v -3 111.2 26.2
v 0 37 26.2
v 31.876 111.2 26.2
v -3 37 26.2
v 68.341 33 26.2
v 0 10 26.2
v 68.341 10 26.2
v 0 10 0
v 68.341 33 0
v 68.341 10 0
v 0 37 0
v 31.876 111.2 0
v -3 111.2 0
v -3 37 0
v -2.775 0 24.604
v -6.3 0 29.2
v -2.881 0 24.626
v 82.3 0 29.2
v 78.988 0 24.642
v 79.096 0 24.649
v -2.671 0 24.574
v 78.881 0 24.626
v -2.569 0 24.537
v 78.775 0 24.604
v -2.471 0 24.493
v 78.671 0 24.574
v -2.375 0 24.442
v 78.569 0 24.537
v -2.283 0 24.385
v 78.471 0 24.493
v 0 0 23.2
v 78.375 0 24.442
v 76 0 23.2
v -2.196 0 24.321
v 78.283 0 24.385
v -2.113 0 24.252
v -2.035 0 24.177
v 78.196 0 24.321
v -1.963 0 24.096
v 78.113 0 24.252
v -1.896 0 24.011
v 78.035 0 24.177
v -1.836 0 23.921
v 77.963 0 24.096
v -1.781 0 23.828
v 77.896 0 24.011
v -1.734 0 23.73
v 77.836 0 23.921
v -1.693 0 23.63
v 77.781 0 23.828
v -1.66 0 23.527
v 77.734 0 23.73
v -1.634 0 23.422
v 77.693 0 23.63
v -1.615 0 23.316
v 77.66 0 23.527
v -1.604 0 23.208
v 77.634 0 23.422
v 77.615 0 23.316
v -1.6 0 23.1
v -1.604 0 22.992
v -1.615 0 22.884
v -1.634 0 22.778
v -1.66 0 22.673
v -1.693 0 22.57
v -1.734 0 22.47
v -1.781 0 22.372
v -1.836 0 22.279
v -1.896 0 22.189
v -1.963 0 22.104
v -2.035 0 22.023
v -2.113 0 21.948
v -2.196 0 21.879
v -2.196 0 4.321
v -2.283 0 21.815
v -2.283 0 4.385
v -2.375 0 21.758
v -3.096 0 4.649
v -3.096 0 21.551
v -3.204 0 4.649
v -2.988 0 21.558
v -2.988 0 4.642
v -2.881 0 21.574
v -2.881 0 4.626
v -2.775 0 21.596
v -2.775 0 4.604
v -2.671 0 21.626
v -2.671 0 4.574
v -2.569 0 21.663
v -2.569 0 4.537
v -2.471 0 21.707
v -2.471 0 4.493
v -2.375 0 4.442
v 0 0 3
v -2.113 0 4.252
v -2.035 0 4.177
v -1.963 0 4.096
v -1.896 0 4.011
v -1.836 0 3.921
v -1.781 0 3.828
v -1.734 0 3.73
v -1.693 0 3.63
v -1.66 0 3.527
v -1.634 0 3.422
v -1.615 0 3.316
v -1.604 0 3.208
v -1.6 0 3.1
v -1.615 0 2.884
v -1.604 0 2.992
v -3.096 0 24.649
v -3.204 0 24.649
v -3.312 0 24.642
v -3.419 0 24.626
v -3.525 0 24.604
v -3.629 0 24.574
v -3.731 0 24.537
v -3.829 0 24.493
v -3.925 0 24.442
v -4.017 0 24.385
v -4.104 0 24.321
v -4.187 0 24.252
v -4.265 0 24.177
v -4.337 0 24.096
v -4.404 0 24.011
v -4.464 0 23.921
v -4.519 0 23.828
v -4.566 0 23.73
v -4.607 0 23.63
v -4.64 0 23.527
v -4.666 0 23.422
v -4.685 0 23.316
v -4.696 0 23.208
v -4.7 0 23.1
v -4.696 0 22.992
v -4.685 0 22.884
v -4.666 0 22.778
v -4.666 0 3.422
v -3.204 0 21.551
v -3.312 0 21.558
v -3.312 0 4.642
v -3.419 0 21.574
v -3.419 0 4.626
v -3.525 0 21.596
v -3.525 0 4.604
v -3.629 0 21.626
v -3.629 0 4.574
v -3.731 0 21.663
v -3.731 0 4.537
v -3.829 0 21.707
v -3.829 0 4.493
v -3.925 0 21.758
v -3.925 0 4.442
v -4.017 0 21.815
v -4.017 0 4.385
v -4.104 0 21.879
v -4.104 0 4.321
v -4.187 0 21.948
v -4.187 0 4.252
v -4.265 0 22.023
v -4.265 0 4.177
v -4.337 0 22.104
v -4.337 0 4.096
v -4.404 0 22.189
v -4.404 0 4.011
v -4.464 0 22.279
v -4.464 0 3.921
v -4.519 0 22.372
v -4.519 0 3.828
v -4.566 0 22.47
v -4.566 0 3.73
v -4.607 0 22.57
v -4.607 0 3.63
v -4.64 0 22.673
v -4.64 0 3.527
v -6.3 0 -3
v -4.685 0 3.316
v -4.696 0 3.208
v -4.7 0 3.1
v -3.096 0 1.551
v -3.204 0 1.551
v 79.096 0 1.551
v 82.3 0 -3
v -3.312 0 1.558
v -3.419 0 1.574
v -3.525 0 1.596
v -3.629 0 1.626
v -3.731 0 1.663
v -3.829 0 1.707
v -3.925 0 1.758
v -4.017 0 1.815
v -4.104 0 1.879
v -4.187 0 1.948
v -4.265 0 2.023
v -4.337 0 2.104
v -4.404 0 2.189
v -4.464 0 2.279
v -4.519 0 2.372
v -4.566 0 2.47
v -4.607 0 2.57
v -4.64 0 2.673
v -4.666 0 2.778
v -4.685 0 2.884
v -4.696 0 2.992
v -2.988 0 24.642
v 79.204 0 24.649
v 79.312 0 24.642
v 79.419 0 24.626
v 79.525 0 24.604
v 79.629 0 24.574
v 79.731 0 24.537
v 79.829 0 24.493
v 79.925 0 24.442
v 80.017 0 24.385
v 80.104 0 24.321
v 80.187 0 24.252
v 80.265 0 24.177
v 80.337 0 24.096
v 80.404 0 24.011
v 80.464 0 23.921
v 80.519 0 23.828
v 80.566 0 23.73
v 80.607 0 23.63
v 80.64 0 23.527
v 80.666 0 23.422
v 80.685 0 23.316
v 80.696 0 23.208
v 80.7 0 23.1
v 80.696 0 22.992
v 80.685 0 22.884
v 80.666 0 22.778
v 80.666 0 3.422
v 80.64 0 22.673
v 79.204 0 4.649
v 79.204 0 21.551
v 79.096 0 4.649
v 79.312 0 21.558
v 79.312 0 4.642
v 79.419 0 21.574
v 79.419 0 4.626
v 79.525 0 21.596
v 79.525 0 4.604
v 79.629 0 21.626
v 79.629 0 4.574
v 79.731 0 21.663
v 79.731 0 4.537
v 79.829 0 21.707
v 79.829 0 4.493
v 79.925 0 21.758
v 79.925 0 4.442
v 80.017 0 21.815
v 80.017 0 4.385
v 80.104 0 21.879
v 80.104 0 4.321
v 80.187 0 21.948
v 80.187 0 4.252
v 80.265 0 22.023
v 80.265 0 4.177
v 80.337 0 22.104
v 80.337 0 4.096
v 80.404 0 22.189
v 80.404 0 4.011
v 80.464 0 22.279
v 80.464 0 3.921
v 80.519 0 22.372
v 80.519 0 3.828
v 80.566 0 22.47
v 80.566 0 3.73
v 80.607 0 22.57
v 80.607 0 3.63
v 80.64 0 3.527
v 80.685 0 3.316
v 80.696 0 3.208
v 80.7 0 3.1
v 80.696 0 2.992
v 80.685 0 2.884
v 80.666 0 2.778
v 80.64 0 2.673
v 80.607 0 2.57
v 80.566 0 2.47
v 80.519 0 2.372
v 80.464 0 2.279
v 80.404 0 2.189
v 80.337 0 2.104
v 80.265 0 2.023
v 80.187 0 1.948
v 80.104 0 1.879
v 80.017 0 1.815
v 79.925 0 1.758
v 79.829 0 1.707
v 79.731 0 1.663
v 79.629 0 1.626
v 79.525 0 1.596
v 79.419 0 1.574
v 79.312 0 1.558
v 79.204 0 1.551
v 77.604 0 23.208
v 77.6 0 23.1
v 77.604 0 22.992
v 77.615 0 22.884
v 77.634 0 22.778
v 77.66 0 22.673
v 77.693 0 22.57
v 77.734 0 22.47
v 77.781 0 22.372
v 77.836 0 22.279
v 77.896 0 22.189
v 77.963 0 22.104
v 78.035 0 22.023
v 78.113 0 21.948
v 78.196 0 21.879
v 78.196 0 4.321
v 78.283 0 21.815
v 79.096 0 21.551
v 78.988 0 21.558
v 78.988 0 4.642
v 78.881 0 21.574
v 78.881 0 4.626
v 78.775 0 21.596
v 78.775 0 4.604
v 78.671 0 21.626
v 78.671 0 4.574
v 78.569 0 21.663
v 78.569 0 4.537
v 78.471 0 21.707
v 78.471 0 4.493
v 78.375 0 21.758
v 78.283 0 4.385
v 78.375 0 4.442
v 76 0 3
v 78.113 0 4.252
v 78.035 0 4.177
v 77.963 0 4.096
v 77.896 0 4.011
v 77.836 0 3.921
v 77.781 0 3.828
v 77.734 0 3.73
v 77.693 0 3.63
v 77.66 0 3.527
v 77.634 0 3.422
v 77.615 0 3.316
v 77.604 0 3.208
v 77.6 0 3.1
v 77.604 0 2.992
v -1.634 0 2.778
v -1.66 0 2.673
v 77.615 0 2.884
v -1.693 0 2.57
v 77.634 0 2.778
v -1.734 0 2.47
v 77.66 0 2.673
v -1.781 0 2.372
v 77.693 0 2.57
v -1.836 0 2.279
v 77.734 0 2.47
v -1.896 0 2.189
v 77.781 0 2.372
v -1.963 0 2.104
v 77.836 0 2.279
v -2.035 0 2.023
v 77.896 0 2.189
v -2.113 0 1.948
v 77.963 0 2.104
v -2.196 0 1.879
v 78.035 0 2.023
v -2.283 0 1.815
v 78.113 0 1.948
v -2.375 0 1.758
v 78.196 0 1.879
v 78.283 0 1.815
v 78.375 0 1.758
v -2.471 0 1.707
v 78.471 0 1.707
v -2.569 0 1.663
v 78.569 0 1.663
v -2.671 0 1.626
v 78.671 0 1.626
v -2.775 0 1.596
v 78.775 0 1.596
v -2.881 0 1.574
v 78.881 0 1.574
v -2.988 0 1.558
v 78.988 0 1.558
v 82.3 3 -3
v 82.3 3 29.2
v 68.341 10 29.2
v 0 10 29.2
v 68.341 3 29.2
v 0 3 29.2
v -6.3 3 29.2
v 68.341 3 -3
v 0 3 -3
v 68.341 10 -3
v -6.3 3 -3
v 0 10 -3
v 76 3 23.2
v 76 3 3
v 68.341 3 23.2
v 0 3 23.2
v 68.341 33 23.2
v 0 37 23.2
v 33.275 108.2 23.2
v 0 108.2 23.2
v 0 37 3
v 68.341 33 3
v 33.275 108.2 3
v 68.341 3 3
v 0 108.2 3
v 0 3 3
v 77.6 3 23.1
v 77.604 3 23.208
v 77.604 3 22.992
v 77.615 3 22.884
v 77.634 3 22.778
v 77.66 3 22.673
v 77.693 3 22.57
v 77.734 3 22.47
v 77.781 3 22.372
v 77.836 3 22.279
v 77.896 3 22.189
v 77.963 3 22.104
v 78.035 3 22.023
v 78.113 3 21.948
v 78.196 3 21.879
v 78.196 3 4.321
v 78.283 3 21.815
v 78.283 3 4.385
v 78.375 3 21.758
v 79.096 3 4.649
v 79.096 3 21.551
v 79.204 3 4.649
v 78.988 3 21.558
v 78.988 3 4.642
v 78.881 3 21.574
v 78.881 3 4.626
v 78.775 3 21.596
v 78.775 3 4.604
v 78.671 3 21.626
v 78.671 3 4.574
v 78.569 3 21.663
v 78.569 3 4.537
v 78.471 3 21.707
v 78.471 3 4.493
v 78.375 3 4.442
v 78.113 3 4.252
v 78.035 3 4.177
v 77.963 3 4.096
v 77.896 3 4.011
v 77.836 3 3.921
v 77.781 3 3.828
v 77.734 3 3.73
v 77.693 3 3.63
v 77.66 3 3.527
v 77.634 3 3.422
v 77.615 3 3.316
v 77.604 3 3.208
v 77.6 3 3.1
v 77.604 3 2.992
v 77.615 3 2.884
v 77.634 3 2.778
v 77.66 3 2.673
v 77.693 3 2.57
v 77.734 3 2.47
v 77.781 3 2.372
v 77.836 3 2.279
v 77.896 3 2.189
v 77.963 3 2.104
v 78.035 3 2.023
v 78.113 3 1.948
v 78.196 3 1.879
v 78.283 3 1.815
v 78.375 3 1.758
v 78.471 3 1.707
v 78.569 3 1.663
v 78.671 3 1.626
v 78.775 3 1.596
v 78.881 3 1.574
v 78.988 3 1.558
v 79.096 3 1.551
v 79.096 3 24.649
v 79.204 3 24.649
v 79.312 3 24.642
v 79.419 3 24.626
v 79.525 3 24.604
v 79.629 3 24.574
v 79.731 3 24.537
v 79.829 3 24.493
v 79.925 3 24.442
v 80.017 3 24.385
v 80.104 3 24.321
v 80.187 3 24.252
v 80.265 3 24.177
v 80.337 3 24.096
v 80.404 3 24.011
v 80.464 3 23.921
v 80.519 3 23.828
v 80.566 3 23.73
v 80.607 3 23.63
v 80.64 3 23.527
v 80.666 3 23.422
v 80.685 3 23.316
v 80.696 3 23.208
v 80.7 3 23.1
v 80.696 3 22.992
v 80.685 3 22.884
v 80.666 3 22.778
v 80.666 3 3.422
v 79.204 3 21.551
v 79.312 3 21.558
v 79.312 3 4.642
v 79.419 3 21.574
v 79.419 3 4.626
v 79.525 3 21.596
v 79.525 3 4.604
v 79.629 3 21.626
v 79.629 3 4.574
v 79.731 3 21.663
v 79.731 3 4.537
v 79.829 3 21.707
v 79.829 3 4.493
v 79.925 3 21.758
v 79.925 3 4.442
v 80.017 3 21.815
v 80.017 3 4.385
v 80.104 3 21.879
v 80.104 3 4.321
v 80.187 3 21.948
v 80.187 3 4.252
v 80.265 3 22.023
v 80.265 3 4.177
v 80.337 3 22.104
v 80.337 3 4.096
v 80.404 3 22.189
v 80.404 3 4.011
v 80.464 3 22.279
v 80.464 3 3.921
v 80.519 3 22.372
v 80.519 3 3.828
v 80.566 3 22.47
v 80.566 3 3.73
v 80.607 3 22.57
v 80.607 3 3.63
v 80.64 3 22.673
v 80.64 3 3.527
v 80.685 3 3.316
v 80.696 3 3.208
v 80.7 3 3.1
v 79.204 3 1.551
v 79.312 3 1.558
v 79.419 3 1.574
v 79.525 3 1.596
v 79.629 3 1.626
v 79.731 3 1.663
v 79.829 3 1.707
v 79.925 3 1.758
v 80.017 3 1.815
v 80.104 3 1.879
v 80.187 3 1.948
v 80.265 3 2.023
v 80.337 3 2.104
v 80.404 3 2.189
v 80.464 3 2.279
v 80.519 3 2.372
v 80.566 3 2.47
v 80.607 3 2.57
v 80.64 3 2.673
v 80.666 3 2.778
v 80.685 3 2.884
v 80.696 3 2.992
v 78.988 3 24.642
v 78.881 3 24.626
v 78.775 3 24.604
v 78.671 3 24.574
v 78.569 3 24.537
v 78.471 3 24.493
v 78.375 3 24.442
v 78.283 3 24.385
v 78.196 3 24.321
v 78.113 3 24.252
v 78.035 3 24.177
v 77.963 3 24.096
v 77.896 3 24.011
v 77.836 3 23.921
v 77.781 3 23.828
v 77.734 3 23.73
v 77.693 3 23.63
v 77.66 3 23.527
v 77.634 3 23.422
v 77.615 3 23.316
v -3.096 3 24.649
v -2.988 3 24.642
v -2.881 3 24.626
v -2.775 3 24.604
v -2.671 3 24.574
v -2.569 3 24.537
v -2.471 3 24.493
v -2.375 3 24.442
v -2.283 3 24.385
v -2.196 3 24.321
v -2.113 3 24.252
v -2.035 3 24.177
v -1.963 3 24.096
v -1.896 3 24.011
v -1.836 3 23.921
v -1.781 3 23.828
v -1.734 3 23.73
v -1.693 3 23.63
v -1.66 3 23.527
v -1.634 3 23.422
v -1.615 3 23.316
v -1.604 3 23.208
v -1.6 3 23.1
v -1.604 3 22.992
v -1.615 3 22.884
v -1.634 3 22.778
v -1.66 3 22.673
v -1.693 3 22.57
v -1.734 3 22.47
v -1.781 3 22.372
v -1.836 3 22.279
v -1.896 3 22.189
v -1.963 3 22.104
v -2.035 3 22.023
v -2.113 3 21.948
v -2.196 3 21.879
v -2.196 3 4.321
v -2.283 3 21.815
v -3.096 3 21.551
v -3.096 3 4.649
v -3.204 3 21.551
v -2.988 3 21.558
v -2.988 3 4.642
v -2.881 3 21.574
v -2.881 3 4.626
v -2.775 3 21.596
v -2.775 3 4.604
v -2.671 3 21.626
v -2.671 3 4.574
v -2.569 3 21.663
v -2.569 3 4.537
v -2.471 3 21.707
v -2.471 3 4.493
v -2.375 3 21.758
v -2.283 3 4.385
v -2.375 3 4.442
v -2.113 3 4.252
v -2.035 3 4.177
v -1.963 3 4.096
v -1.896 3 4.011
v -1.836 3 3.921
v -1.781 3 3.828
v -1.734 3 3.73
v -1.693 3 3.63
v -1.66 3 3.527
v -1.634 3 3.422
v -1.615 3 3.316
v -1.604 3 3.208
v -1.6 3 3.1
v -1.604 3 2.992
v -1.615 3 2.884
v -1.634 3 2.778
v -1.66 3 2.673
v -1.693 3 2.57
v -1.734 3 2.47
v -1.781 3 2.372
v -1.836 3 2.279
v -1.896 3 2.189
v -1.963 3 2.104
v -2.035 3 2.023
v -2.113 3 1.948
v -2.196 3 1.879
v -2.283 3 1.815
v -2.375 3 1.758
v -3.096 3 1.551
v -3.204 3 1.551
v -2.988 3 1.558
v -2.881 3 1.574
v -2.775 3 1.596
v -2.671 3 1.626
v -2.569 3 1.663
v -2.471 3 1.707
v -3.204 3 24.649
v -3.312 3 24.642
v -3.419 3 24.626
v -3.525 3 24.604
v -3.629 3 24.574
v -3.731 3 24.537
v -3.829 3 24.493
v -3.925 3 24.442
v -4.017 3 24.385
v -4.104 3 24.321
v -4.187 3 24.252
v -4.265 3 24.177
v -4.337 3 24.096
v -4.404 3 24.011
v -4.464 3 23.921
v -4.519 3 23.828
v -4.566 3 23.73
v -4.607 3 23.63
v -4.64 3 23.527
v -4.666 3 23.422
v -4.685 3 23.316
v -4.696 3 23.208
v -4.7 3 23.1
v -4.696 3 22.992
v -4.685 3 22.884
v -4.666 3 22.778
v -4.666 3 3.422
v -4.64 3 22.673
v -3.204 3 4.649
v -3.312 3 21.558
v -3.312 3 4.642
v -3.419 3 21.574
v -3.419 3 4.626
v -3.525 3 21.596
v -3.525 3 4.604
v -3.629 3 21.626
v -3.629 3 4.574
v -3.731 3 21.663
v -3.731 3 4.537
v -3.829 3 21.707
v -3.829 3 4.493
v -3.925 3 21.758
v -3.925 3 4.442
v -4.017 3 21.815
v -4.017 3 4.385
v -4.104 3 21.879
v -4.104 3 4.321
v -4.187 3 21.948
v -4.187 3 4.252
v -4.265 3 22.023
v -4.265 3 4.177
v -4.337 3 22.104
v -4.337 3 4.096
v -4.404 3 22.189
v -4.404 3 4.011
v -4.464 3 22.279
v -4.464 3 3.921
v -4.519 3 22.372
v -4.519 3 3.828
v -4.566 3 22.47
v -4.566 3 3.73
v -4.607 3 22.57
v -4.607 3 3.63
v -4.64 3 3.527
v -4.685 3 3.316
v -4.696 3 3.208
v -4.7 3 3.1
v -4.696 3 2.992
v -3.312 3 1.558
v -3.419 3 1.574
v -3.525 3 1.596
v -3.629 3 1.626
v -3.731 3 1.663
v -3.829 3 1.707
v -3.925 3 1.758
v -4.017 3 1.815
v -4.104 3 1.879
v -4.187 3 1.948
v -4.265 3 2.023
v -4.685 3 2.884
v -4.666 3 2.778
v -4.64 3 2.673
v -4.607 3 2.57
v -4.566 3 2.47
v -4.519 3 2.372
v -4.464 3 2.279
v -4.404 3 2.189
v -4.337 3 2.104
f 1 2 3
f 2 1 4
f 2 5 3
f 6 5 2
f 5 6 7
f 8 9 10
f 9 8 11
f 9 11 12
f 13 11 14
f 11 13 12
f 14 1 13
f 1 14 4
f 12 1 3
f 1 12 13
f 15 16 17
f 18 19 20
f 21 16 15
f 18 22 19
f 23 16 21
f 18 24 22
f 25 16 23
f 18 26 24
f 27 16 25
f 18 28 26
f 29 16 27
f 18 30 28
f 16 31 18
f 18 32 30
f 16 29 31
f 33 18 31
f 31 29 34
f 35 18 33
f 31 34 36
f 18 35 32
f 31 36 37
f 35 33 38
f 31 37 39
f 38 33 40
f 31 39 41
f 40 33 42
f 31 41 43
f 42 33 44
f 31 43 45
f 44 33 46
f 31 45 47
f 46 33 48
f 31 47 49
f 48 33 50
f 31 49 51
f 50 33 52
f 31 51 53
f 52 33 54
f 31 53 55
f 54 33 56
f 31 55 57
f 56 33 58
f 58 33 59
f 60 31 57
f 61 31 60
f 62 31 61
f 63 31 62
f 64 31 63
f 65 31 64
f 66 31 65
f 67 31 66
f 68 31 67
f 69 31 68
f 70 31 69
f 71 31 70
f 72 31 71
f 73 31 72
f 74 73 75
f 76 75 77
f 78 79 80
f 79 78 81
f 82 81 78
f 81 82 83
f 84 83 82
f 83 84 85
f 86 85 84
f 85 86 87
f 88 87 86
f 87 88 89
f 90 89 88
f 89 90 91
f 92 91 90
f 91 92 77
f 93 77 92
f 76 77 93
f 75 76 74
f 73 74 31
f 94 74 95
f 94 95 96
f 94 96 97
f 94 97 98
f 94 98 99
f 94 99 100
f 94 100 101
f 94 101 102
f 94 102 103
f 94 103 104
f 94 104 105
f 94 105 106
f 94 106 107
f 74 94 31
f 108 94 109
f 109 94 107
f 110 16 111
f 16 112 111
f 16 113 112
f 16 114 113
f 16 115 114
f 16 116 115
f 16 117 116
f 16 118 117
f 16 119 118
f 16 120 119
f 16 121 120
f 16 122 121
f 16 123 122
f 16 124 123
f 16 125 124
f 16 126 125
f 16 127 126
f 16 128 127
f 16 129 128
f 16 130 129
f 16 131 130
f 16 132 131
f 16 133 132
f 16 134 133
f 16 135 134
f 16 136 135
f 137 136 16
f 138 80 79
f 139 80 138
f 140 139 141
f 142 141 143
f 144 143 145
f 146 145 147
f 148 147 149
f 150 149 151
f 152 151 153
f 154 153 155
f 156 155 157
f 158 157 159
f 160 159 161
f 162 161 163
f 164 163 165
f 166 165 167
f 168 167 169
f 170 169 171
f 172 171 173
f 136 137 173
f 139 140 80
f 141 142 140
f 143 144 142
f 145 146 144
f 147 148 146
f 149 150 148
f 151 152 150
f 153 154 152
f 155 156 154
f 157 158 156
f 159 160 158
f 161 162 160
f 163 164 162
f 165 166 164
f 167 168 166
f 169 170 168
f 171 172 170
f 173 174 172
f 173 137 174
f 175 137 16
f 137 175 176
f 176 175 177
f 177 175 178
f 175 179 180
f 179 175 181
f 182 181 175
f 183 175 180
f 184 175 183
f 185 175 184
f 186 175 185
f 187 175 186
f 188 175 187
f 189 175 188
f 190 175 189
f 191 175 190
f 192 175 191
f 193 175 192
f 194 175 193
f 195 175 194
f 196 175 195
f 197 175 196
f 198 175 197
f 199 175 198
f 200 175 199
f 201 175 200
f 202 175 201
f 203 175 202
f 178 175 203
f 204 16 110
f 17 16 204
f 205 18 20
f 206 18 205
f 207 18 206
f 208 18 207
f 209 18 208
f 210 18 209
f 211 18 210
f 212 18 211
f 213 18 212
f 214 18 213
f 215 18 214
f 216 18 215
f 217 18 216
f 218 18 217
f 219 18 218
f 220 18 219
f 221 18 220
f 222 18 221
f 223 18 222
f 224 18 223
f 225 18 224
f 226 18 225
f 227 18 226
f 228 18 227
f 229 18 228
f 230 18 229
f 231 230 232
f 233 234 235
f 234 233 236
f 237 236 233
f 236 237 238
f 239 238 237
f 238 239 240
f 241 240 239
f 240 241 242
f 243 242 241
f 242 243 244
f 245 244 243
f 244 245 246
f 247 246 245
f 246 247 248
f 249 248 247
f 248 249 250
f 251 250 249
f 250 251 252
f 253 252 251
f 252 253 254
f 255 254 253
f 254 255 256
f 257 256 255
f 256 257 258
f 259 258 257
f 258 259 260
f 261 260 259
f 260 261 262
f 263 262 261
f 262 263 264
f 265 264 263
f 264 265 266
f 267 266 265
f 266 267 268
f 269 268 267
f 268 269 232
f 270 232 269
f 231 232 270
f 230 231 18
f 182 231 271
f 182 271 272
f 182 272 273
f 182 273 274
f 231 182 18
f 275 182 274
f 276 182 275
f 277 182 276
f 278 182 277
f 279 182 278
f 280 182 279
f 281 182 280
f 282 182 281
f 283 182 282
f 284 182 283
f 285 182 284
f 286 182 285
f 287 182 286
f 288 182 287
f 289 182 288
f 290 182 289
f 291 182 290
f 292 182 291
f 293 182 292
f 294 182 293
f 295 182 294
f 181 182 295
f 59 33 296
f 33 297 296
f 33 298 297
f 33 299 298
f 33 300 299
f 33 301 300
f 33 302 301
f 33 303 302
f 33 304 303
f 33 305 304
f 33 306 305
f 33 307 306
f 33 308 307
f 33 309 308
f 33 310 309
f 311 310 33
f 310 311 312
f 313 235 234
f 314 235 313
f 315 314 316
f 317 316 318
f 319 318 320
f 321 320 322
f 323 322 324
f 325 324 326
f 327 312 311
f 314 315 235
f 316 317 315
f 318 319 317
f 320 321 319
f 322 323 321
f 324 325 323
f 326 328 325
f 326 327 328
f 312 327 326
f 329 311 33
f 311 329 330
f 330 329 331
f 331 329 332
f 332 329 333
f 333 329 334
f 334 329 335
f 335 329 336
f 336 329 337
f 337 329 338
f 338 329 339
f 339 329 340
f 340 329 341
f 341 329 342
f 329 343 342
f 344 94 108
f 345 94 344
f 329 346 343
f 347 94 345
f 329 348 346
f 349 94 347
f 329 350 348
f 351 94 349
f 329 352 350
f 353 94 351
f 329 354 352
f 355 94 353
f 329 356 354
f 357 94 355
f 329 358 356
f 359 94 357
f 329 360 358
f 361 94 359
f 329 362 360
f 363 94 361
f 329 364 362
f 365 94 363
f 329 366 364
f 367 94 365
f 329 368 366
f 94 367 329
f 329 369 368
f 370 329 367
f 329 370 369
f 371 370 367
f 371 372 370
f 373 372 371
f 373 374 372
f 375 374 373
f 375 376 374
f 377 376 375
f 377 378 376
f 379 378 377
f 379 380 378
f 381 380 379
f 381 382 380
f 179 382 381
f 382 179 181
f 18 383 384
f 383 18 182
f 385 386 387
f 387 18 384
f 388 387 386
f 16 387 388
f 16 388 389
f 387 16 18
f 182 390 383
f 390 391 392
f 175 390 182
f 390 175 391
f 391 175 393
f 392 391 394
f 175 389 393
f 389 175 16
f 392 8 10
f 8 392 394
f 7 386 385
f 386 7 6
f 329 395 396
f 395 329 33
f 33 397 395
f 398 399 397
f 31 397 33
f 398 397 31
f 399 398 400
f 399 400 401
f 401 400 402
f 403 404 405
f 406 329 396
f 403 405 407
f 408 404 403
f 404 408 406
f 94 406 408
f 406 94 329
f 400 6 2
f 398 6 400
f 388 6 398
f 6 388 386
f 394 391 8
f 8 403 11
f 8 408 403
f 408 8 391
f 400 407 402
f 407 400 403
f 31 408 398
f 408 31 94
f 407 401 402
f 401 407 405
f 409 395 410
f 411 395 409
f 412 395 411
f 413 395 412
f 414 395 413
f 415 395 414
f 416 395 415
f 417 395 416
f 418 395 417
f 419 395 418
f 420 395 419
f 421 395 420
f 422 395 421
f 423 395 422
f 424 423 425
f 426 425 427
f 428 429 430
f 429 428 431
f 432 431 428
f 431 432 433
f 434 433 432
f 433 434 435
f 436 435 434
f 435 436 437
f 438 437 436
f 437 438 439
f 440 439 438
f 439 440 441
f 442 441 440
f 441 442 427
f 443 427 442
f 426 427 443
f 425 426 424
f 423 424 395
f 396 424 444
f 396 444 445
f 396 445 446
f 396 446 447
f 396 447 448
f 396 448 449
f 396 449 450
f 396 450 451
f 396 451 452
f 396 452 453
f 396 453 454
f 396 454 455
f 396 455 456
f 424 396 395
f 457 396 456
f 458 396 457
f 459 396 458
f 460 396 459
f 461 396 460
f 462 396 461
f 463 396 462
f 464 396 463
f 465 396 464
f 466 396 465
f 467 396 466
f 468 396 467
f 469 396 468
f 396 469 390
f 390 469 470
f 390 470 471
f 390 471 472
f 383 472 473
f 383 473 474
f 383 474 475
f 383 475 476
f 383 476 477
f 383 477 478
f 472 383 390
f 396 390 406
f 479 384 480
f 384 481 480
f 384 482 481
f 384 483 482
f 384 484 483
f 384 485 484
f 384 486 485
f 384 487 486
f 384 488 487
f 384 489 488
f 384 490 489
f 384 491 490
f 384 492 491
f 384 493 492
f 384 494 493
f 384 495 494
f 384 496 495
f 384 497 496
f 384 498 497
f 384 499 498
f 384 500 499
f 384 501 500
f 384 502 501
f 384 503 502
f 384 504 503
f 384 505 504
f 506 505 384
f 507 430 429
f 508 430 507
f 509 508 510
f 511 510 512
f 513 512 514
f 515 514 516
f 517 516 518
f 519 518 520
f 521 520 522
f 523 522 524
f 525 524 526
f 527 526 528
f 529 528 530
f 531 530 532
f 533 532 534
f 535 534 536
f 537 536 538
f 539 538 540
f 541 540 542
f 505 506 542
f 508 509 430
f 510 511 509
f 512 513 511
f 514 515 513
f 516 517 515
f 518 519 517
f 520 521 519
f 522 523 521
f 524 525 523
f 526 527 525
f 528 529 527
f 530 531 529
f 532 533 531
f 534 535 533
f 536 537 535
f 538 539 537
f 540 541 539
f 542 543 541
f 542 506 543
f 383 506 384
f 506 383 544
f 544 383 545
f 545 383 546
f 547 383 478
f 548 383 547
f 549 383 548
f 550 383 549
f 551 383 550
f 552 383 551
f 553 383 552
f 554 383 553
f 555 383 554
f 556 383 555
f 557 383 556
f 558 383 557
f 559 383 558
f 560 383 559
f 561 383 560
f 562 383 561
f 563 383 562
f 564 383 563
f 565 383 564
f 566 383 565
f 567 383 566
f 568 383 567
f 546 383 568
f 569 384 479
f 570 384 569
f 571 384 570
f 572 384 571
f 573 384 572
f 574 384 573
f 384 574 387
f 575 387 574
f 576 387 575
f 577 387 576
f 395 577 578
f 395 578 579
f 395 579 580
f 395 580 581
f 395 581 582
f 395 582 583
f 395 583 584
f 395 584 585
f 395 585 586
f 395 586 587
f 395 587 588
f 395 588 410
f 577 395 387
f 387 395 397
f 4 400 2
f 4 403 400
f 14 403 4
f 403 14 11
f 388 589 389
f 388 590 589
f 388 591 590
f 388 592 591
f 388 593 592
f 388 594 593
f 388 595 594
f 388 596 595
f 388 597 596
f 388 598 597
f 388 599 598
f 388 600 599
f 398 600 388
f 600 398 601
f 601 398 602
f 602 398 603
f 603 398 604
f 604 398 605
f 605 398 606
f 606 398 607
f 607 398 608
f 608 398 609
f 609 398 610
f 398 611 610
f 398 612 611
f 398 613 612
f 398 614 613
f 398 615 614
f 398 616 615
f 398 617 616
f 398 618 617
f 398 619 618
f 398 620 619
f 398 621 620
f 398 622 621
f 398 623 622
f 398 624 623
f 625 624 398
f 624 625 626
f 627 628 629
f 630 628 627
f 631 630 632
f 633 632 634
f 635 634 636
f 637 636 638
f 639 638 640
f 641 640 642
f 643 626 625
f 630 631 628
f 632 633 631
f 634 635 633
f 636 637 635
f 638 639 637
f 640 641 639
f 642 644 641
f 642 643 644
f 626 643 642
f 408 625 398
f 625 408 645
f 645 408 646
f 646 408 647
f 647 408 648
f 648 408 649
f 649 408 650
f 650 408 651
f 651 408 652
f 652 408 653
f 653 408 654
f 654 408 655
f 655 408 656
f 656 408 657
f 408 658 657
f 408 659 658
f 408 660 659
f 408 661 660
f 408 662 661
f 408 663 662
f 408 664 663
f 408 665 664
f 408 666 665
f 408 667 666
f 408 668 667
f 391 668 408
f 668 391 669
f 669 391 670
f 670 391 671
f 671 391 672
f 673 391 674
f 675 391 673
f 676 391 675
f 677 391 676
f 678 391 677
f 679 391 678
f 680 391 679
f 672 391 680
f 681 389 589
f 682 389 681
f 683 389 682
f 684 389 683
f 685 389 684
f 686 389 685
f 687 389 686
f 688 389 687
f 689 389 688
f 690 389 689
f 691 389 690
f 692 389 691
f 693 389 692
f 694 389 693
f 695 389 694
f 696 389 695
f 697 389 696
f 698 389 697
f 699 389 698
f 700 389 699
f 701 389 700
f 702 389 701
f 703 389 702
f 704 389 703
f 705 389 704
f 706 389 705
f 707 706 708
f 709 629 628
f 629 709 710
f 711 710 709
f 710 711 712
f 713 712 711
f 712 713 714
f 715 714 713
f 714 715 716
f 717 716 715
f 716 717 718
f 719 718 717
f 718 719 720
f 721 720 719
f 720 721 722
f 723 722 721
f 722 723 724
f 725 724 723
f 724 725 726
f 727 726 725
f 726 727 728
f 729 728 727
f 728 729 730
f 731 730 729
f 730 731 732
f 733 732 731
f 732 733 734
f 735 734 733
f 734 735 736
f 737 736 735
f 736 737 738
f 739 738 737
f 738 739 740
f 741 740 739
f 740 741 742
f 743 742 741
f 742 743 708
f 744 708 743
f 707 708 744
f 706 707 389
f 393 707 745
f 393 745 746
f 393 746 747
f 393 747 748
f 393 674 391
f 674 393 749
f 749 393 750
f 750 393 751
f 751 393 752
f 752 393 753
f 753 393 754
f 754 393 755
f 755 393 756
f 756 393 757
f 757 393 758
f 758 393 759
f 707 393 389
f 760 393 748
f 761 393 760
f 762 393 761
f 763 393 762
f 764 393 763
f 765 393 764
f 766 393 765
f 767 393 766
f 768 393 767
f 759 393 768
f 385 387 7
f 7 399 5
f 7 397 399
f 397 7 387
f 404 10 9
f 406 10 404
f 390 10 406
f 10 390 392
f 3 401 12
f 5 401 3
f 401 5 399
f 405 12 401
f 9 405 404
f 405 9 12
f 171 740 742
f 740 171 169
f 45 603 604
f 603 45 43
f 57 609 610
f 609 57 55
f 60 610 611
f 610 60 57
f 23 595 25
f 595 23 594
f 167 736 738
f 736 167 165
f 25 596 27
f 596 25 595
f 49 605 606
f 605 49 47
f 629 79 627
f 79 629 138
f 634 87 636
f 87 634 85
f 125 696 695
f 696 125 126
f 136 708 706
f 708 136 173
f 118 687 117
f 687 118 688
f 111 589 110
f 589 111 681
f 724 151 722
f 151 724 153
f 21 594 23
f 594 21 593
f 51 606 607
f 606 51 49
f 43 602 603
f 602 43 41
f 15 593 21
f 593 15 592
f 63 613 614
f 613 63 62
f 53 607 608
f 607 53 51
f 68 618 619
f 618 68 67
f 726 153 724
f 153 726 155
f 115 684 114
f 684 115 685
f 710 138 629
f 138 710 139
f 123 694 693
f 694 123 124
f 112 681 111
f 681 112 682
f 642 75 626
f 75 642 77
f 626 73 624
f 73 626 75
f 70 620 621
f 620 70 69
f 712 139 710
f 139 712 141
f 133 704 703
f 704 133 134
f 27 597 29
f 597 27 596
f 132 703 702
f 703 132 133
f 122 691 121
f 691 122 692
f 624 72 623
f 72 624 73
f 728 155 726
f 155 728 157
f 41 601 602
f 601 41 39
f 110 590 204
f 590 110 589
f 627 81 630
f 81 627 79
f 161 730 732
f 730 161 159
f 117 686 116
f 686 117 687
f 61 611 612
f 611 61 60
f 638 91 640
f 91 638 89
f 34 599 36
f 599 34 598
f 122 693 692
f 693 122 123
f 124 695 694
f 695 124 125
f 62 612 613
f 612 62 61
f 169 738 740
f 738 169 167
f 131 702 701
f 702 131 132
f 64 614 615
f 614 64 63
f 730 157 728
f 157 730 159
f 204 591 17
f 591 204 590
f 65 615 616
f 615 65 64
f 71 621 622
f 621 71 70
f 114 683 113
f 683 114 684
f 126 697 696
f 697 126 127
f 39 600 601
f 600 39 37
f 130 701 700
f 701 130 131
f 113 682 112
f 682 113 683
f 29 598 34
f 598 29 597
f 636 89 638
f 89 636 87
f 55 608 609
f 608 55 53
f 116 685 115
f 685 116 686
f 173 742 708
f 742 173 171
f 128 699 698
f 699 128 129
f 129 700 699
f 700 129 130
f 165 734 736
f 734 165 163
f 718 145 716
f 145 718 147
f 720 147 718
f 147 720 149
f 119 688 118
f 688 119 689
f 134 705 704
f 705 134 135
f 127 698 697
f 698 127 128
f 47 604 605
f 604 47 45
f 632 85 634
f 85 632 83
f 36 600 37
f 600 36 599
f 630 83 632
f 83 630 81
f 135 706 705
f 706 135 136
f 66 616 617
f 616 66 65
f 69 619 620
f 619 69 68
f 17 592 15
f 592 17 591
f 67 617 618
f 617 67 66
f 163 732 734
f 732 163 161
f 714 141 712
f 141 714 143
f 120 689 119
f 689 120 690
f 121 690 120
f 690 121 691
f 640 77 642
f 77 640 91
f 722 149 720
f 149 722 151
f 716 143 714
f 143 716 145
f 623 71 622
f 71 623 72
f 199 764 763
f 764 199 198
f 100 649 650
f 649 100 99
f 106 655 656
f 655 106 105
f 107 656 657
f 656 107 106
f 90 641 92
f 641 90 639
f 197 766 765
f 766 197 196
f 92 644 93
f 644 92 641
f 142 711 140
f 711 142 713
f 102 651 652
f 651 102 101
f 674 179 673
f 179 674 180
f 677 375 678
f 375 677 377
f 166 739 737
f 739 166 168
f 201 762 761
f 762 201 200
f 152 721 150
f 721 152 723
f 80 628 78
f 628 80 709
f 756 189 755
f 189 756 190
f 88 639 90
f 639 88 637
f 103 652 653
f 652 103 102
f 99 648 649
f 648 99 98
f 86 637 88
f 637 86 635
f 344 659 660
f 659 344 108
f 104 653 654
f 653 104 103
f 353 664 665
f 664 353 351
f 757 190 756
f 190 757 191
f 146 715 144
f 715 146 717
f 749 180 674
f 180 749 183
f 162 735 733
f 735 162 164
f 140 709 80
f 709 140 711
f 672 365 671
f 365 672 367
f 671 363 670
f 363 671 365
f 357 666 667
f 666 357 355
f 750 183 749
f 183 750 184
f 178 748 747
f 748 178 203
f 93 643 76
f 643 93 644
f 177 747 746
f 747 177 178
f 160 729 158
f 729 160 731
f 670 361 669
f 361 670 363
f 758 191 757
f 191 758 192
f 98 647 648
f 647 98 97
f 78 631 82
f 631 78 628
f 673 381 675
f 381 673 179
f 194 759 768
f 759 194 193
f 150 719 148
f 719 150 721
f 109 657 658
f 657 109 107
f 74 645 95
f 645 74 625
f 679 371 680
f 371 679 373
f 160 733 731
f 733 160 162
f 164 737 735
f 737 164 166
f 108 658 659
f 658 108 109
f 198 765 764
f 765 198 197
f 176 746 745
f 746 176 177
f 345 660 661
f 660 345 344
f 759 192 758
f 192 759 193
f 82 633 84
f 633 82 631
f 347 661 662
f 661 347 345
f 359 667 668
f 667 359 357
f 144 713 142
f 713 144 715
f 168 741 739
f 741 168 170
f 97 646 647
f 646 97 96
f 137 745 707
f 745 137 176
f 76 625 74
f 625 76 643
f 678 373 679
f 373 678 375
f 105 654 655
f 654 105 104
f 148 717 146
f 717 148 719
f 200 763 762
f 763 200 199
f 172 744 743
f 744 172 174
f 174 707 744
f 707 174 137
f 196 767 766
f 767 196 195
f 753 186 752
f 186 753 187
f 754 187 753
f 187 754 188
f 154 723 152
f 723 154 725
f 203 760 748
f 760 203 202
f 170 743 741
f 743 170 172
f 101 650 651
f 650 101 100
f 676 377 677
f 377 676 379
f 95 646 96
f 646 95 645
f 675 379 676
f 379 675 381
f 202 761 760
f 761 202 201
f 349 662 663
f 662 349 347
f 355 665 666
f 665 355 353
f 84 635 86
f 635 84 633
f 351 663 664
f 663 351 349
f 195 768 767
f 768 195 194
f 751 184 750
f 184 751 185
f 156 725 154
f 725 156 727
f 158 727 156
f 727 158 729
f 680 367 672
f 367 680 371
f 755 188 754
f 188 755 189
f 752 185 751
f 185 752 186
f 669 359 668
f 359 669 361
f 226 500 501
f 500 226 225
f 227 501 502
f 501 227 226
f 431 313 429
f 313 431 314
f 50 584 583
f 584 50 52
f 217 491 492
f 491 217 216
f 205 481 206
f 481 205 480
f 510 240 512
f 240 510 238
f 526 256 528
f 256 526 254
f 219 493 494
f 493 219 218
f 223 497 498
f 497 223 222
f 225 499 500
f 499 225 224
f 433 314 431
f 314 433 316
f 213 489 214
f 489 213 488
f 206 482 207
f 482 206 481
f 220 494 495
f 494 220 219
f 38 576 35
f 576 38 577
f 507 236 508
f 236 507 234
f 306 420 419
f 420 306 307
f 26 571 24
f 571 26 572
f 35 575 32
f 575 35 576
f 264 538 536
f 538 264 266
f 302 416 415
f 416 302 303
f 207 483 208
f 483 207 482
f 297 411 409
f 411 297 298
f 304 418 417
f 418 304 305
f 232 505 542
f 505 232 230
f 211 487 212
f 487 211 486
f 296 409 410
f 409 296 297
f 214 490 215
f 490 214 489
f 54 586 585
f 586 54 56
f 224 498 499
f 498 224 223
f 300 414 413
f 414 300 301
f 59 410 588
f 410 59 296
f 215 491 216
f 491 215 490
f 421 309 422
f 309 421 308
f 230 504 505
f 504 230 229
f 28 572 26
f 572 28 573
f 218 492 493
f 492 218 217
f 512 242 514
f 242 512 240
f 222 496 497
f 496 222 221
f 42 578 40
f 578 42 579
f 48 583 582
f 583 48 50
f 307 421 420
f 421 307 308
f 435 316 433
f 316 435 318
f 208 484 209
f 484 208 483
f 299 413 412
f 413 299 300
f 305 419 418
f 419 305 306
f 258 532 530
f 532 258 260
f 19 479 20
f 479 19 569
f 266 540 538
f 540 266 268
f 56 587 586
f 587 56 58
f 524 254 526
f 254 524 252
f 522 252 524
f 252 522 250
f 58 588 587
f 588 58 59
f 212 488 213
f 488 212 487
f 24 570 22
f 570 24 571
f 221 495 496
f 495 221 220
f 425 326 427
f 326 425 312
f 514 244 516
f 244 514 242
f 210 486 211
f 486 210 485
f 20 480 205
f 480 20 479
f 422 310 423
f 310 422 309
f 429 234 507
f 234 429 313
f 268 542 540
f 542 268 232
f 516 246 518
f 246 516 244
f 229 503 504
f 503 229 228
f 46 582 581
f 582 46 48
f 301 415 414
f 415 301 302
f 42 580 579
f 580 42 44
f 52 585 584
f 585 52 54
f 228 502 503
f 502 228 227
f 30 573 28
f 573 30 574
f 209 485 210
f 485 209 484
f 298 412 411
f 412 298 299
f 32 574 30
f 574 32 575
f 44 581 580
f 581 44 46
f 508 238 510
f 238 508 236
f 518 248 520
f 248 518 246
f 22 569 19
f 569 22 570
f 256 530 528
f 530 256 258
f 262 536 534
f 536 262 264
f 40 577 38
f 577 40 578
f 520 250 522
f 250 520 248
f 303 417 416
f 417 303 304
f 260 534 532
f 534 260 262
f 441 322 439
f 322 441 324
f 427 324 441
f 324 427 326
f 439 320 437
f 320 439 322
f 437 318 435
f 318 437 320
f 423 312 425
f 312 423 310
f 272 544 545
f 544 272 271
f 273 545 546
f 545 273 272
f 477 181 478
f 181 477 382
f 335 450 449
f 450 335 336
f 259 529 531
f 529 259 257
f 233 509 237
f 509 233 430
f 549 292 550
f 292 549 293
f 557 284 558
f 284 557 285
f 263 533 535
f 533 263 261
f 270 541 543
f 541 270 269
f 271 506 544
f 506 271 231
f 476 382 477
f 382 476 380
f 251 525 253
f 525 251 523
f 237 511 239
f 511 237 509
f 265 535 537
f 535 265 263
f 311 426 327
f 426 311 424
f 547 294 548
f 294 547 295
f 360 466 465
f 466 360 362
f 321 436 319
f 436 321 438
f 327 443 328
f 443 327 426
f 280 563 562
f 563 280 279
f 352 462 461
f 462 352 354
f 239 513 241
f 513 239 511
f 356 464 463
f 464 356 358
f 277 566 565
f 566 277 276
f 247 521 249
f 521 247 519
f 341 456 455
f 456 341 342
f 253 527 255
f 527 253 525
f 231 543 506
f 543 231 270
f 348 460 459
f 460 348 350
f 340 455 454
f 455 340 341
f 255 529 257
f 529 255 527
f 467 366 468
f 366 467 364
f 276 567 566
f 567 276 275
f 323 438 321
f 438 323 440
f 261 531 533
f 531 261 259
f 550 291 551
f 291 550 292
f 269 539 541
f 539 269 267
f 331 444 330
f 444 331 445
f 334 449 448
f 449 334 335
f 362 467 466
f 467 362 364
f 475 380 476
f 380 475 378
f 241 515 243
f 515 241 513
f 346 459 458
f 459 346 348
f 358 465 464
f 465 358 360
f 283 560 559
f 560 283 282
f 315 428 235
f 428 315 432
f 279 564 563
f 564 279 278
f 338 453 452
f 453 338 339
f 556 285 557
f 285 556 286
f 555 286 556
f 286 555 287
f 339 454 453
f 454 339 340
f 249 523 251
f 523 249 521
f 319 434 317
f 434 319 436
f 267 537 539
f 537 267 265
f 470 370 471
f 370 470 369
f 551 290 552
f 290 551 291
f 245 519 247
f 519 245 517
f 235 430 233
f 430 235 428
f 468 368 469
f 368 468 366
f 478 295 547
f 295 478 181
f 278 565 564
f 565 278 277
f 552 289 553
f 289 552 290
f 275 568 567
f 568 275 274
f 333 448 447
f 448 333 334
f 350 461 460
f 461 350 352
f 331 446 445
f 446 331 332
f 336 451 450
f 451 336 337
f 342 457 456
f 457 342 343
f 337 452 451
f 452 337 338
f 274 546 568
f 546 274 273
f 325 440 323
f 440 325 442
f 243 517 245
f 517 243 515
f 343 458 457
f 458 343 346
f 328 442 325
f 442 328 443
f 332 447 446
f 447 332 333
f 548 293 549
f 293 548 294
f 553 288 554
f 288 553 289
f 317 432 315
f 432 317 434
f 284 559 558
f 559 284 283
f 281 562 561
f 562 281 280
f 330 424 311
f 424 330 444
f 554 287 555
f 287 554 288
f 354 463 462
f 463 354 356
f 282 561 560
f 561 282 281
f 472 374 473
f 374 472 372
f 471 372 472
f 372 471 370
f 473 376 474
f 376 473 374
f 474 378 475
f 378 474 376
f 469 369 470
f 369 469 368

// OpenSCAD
// file: ../../utils/constants.scad
$fn=90;  // accuracy

/* Server dimentions */

// one server unit
c_1u = 44.45;  

// two server unit
c_2u = c_1u*2; // 88.9

// total width
// The total with of the a server rack (19")
// this includes the mounting holes
c_tw  = 482.6; 

// Total inner width
// The distance between the mounting holes in the server rack
c_tiw = 450;


/* Rack hole dimentions */

// width distance rack holes
c_wdrh = 465;

// height distance rack holes
c_hdrh = 33;


/* dell optiplex 7040 micro usff dimentions */

// dell optiplex 7040 height
c_do7040h = 36;

// dell optiplex 7040 width
c_do7040w = 182;

// dell optiplex 7040 depth
c_do7040d = 179;

// dell optiplex 7040 rubber feet width distance
c_do7040rfwd = 14.9;

// dell optiplex 7040 rubber feet back depth distance
c_do7040rfbdd = 9.9;


/* Case dimentions */

// case height outer 
// A small margin is included to so that the case does not 
// exide two server units
c_2ucho = 88.6; 

// case height inner
// The thickness of the walls can then be calculated as (cho-chi)/2
c_2uchi = 76;

// distance between node holes
c_2udbnh = 82.3;

// case width outer
// as there are three parts of the rack server case we just devide
// the total inner width with three 
c_cwo = c_tiw/3; // 150

// case width inner
// Needs to be less than case width outer
c_cwi = 140;

// case depth thickness
// How thick the case should be. It needs to be thicker than the hight
// of the threaded insert.
c_cdt = 30;

// case inner side thickness
// The middle and the side case over lap so that a screw can be entered
// between the two cases. The cist is defined as the thickness of the part
// that does not overlap between the midle and side case.
c_cist = 3.5;

// nodes per case
c_npc = 7;
// file: wd-my-passport-holder-module.scad
/* wdMyPassportHolder
    Mount for WD My Passport to be installed in
    rack server node case
    
    chi: case height inner
    cho: case height outer
    cdt: case depth thickenss
    hdbh: horizontal distance between holes
*/
module wdMyPassportHolder(chi,cho,cdt,hdbh){
  hwt = (cho-chi)/2; // horizontal wall thickness
  nhbpt = 3; // node holder base plate thickness

  wdmpw = 75+1; // WD My Passport width
  wdmpd = 107.2+1; // WD My Passport depth
  wdmpt = 19.2+1; // WD My Passport thickness. Note that this is for 5TB and 4TB

  nw = wdmpw+nhbpt;// Node width
  nd = wdmpd+nhbpt;// Node depth
  nt = wdmpt+nhbpt*2;// Node thickness
  ntt = wdmpt+nhbpt*4;// Node thickness (extra thickness for support)

  mwfp = sqrt(chi^2-nt^2)-3;  // max width for pivoting (the case)

  module mountHole(){
    translate([0,nhbpt/2,nt/2])
    rotate([90,0,0])
    #cylinder(h=nhbpt,d=3.1,center=true);
  } 

  difference() {
    union() {
      translate([-nhbpt,0,0])
      cube([nw, nd, nt]);

      translate([-hwt,0,-(ntt-nt)/2])
      cube([cho, 10, ntt]);
    }
    union() {
      // WD My Passport
      translate([0,0,nhbpt]) 
      cube([wdmpw, wdmpd, wdmpt]);

      // Remove potential small walls
      translate([0,nhbpt,nhbpt]) 
      cube([nw, cdt+4, wdmpt]);

      // Remove to fit in case
      translate([-hwt,nhbpt,-(ntt-nt)/2]) 
      cube([hwt, cdt+4, ntt]);

      // Remove to allow pivoting
      translate([mwfp,nhbpt,-(ntt-nt)/2]) 
      cube([cho-mwfp, cdt+4, ntt]);

      // Remove unnessesary parts
      translate([mwfp,nhbpt+cdt,0]) 
      rotate([0,0,25])
      #cube([nw,nd,nt]);

      translate([-hwt/2,0,10])
      mountHole();
      translate([-hwt/2,0,-10])
      mountHole();
      translate([-hwt/2+hdbh,0,10])
      mountHole();
      translate([-hwt/2+hdbh,0,-10])
      mountHole();
    }
  }
}
// main file
use <wd-my-passport-holder-module.scad>;
include <../../utils/constants.scad>;

wdMyPassportHolder(c_2uchi,c_2ucho,c_cdt,c_2udbnh);
